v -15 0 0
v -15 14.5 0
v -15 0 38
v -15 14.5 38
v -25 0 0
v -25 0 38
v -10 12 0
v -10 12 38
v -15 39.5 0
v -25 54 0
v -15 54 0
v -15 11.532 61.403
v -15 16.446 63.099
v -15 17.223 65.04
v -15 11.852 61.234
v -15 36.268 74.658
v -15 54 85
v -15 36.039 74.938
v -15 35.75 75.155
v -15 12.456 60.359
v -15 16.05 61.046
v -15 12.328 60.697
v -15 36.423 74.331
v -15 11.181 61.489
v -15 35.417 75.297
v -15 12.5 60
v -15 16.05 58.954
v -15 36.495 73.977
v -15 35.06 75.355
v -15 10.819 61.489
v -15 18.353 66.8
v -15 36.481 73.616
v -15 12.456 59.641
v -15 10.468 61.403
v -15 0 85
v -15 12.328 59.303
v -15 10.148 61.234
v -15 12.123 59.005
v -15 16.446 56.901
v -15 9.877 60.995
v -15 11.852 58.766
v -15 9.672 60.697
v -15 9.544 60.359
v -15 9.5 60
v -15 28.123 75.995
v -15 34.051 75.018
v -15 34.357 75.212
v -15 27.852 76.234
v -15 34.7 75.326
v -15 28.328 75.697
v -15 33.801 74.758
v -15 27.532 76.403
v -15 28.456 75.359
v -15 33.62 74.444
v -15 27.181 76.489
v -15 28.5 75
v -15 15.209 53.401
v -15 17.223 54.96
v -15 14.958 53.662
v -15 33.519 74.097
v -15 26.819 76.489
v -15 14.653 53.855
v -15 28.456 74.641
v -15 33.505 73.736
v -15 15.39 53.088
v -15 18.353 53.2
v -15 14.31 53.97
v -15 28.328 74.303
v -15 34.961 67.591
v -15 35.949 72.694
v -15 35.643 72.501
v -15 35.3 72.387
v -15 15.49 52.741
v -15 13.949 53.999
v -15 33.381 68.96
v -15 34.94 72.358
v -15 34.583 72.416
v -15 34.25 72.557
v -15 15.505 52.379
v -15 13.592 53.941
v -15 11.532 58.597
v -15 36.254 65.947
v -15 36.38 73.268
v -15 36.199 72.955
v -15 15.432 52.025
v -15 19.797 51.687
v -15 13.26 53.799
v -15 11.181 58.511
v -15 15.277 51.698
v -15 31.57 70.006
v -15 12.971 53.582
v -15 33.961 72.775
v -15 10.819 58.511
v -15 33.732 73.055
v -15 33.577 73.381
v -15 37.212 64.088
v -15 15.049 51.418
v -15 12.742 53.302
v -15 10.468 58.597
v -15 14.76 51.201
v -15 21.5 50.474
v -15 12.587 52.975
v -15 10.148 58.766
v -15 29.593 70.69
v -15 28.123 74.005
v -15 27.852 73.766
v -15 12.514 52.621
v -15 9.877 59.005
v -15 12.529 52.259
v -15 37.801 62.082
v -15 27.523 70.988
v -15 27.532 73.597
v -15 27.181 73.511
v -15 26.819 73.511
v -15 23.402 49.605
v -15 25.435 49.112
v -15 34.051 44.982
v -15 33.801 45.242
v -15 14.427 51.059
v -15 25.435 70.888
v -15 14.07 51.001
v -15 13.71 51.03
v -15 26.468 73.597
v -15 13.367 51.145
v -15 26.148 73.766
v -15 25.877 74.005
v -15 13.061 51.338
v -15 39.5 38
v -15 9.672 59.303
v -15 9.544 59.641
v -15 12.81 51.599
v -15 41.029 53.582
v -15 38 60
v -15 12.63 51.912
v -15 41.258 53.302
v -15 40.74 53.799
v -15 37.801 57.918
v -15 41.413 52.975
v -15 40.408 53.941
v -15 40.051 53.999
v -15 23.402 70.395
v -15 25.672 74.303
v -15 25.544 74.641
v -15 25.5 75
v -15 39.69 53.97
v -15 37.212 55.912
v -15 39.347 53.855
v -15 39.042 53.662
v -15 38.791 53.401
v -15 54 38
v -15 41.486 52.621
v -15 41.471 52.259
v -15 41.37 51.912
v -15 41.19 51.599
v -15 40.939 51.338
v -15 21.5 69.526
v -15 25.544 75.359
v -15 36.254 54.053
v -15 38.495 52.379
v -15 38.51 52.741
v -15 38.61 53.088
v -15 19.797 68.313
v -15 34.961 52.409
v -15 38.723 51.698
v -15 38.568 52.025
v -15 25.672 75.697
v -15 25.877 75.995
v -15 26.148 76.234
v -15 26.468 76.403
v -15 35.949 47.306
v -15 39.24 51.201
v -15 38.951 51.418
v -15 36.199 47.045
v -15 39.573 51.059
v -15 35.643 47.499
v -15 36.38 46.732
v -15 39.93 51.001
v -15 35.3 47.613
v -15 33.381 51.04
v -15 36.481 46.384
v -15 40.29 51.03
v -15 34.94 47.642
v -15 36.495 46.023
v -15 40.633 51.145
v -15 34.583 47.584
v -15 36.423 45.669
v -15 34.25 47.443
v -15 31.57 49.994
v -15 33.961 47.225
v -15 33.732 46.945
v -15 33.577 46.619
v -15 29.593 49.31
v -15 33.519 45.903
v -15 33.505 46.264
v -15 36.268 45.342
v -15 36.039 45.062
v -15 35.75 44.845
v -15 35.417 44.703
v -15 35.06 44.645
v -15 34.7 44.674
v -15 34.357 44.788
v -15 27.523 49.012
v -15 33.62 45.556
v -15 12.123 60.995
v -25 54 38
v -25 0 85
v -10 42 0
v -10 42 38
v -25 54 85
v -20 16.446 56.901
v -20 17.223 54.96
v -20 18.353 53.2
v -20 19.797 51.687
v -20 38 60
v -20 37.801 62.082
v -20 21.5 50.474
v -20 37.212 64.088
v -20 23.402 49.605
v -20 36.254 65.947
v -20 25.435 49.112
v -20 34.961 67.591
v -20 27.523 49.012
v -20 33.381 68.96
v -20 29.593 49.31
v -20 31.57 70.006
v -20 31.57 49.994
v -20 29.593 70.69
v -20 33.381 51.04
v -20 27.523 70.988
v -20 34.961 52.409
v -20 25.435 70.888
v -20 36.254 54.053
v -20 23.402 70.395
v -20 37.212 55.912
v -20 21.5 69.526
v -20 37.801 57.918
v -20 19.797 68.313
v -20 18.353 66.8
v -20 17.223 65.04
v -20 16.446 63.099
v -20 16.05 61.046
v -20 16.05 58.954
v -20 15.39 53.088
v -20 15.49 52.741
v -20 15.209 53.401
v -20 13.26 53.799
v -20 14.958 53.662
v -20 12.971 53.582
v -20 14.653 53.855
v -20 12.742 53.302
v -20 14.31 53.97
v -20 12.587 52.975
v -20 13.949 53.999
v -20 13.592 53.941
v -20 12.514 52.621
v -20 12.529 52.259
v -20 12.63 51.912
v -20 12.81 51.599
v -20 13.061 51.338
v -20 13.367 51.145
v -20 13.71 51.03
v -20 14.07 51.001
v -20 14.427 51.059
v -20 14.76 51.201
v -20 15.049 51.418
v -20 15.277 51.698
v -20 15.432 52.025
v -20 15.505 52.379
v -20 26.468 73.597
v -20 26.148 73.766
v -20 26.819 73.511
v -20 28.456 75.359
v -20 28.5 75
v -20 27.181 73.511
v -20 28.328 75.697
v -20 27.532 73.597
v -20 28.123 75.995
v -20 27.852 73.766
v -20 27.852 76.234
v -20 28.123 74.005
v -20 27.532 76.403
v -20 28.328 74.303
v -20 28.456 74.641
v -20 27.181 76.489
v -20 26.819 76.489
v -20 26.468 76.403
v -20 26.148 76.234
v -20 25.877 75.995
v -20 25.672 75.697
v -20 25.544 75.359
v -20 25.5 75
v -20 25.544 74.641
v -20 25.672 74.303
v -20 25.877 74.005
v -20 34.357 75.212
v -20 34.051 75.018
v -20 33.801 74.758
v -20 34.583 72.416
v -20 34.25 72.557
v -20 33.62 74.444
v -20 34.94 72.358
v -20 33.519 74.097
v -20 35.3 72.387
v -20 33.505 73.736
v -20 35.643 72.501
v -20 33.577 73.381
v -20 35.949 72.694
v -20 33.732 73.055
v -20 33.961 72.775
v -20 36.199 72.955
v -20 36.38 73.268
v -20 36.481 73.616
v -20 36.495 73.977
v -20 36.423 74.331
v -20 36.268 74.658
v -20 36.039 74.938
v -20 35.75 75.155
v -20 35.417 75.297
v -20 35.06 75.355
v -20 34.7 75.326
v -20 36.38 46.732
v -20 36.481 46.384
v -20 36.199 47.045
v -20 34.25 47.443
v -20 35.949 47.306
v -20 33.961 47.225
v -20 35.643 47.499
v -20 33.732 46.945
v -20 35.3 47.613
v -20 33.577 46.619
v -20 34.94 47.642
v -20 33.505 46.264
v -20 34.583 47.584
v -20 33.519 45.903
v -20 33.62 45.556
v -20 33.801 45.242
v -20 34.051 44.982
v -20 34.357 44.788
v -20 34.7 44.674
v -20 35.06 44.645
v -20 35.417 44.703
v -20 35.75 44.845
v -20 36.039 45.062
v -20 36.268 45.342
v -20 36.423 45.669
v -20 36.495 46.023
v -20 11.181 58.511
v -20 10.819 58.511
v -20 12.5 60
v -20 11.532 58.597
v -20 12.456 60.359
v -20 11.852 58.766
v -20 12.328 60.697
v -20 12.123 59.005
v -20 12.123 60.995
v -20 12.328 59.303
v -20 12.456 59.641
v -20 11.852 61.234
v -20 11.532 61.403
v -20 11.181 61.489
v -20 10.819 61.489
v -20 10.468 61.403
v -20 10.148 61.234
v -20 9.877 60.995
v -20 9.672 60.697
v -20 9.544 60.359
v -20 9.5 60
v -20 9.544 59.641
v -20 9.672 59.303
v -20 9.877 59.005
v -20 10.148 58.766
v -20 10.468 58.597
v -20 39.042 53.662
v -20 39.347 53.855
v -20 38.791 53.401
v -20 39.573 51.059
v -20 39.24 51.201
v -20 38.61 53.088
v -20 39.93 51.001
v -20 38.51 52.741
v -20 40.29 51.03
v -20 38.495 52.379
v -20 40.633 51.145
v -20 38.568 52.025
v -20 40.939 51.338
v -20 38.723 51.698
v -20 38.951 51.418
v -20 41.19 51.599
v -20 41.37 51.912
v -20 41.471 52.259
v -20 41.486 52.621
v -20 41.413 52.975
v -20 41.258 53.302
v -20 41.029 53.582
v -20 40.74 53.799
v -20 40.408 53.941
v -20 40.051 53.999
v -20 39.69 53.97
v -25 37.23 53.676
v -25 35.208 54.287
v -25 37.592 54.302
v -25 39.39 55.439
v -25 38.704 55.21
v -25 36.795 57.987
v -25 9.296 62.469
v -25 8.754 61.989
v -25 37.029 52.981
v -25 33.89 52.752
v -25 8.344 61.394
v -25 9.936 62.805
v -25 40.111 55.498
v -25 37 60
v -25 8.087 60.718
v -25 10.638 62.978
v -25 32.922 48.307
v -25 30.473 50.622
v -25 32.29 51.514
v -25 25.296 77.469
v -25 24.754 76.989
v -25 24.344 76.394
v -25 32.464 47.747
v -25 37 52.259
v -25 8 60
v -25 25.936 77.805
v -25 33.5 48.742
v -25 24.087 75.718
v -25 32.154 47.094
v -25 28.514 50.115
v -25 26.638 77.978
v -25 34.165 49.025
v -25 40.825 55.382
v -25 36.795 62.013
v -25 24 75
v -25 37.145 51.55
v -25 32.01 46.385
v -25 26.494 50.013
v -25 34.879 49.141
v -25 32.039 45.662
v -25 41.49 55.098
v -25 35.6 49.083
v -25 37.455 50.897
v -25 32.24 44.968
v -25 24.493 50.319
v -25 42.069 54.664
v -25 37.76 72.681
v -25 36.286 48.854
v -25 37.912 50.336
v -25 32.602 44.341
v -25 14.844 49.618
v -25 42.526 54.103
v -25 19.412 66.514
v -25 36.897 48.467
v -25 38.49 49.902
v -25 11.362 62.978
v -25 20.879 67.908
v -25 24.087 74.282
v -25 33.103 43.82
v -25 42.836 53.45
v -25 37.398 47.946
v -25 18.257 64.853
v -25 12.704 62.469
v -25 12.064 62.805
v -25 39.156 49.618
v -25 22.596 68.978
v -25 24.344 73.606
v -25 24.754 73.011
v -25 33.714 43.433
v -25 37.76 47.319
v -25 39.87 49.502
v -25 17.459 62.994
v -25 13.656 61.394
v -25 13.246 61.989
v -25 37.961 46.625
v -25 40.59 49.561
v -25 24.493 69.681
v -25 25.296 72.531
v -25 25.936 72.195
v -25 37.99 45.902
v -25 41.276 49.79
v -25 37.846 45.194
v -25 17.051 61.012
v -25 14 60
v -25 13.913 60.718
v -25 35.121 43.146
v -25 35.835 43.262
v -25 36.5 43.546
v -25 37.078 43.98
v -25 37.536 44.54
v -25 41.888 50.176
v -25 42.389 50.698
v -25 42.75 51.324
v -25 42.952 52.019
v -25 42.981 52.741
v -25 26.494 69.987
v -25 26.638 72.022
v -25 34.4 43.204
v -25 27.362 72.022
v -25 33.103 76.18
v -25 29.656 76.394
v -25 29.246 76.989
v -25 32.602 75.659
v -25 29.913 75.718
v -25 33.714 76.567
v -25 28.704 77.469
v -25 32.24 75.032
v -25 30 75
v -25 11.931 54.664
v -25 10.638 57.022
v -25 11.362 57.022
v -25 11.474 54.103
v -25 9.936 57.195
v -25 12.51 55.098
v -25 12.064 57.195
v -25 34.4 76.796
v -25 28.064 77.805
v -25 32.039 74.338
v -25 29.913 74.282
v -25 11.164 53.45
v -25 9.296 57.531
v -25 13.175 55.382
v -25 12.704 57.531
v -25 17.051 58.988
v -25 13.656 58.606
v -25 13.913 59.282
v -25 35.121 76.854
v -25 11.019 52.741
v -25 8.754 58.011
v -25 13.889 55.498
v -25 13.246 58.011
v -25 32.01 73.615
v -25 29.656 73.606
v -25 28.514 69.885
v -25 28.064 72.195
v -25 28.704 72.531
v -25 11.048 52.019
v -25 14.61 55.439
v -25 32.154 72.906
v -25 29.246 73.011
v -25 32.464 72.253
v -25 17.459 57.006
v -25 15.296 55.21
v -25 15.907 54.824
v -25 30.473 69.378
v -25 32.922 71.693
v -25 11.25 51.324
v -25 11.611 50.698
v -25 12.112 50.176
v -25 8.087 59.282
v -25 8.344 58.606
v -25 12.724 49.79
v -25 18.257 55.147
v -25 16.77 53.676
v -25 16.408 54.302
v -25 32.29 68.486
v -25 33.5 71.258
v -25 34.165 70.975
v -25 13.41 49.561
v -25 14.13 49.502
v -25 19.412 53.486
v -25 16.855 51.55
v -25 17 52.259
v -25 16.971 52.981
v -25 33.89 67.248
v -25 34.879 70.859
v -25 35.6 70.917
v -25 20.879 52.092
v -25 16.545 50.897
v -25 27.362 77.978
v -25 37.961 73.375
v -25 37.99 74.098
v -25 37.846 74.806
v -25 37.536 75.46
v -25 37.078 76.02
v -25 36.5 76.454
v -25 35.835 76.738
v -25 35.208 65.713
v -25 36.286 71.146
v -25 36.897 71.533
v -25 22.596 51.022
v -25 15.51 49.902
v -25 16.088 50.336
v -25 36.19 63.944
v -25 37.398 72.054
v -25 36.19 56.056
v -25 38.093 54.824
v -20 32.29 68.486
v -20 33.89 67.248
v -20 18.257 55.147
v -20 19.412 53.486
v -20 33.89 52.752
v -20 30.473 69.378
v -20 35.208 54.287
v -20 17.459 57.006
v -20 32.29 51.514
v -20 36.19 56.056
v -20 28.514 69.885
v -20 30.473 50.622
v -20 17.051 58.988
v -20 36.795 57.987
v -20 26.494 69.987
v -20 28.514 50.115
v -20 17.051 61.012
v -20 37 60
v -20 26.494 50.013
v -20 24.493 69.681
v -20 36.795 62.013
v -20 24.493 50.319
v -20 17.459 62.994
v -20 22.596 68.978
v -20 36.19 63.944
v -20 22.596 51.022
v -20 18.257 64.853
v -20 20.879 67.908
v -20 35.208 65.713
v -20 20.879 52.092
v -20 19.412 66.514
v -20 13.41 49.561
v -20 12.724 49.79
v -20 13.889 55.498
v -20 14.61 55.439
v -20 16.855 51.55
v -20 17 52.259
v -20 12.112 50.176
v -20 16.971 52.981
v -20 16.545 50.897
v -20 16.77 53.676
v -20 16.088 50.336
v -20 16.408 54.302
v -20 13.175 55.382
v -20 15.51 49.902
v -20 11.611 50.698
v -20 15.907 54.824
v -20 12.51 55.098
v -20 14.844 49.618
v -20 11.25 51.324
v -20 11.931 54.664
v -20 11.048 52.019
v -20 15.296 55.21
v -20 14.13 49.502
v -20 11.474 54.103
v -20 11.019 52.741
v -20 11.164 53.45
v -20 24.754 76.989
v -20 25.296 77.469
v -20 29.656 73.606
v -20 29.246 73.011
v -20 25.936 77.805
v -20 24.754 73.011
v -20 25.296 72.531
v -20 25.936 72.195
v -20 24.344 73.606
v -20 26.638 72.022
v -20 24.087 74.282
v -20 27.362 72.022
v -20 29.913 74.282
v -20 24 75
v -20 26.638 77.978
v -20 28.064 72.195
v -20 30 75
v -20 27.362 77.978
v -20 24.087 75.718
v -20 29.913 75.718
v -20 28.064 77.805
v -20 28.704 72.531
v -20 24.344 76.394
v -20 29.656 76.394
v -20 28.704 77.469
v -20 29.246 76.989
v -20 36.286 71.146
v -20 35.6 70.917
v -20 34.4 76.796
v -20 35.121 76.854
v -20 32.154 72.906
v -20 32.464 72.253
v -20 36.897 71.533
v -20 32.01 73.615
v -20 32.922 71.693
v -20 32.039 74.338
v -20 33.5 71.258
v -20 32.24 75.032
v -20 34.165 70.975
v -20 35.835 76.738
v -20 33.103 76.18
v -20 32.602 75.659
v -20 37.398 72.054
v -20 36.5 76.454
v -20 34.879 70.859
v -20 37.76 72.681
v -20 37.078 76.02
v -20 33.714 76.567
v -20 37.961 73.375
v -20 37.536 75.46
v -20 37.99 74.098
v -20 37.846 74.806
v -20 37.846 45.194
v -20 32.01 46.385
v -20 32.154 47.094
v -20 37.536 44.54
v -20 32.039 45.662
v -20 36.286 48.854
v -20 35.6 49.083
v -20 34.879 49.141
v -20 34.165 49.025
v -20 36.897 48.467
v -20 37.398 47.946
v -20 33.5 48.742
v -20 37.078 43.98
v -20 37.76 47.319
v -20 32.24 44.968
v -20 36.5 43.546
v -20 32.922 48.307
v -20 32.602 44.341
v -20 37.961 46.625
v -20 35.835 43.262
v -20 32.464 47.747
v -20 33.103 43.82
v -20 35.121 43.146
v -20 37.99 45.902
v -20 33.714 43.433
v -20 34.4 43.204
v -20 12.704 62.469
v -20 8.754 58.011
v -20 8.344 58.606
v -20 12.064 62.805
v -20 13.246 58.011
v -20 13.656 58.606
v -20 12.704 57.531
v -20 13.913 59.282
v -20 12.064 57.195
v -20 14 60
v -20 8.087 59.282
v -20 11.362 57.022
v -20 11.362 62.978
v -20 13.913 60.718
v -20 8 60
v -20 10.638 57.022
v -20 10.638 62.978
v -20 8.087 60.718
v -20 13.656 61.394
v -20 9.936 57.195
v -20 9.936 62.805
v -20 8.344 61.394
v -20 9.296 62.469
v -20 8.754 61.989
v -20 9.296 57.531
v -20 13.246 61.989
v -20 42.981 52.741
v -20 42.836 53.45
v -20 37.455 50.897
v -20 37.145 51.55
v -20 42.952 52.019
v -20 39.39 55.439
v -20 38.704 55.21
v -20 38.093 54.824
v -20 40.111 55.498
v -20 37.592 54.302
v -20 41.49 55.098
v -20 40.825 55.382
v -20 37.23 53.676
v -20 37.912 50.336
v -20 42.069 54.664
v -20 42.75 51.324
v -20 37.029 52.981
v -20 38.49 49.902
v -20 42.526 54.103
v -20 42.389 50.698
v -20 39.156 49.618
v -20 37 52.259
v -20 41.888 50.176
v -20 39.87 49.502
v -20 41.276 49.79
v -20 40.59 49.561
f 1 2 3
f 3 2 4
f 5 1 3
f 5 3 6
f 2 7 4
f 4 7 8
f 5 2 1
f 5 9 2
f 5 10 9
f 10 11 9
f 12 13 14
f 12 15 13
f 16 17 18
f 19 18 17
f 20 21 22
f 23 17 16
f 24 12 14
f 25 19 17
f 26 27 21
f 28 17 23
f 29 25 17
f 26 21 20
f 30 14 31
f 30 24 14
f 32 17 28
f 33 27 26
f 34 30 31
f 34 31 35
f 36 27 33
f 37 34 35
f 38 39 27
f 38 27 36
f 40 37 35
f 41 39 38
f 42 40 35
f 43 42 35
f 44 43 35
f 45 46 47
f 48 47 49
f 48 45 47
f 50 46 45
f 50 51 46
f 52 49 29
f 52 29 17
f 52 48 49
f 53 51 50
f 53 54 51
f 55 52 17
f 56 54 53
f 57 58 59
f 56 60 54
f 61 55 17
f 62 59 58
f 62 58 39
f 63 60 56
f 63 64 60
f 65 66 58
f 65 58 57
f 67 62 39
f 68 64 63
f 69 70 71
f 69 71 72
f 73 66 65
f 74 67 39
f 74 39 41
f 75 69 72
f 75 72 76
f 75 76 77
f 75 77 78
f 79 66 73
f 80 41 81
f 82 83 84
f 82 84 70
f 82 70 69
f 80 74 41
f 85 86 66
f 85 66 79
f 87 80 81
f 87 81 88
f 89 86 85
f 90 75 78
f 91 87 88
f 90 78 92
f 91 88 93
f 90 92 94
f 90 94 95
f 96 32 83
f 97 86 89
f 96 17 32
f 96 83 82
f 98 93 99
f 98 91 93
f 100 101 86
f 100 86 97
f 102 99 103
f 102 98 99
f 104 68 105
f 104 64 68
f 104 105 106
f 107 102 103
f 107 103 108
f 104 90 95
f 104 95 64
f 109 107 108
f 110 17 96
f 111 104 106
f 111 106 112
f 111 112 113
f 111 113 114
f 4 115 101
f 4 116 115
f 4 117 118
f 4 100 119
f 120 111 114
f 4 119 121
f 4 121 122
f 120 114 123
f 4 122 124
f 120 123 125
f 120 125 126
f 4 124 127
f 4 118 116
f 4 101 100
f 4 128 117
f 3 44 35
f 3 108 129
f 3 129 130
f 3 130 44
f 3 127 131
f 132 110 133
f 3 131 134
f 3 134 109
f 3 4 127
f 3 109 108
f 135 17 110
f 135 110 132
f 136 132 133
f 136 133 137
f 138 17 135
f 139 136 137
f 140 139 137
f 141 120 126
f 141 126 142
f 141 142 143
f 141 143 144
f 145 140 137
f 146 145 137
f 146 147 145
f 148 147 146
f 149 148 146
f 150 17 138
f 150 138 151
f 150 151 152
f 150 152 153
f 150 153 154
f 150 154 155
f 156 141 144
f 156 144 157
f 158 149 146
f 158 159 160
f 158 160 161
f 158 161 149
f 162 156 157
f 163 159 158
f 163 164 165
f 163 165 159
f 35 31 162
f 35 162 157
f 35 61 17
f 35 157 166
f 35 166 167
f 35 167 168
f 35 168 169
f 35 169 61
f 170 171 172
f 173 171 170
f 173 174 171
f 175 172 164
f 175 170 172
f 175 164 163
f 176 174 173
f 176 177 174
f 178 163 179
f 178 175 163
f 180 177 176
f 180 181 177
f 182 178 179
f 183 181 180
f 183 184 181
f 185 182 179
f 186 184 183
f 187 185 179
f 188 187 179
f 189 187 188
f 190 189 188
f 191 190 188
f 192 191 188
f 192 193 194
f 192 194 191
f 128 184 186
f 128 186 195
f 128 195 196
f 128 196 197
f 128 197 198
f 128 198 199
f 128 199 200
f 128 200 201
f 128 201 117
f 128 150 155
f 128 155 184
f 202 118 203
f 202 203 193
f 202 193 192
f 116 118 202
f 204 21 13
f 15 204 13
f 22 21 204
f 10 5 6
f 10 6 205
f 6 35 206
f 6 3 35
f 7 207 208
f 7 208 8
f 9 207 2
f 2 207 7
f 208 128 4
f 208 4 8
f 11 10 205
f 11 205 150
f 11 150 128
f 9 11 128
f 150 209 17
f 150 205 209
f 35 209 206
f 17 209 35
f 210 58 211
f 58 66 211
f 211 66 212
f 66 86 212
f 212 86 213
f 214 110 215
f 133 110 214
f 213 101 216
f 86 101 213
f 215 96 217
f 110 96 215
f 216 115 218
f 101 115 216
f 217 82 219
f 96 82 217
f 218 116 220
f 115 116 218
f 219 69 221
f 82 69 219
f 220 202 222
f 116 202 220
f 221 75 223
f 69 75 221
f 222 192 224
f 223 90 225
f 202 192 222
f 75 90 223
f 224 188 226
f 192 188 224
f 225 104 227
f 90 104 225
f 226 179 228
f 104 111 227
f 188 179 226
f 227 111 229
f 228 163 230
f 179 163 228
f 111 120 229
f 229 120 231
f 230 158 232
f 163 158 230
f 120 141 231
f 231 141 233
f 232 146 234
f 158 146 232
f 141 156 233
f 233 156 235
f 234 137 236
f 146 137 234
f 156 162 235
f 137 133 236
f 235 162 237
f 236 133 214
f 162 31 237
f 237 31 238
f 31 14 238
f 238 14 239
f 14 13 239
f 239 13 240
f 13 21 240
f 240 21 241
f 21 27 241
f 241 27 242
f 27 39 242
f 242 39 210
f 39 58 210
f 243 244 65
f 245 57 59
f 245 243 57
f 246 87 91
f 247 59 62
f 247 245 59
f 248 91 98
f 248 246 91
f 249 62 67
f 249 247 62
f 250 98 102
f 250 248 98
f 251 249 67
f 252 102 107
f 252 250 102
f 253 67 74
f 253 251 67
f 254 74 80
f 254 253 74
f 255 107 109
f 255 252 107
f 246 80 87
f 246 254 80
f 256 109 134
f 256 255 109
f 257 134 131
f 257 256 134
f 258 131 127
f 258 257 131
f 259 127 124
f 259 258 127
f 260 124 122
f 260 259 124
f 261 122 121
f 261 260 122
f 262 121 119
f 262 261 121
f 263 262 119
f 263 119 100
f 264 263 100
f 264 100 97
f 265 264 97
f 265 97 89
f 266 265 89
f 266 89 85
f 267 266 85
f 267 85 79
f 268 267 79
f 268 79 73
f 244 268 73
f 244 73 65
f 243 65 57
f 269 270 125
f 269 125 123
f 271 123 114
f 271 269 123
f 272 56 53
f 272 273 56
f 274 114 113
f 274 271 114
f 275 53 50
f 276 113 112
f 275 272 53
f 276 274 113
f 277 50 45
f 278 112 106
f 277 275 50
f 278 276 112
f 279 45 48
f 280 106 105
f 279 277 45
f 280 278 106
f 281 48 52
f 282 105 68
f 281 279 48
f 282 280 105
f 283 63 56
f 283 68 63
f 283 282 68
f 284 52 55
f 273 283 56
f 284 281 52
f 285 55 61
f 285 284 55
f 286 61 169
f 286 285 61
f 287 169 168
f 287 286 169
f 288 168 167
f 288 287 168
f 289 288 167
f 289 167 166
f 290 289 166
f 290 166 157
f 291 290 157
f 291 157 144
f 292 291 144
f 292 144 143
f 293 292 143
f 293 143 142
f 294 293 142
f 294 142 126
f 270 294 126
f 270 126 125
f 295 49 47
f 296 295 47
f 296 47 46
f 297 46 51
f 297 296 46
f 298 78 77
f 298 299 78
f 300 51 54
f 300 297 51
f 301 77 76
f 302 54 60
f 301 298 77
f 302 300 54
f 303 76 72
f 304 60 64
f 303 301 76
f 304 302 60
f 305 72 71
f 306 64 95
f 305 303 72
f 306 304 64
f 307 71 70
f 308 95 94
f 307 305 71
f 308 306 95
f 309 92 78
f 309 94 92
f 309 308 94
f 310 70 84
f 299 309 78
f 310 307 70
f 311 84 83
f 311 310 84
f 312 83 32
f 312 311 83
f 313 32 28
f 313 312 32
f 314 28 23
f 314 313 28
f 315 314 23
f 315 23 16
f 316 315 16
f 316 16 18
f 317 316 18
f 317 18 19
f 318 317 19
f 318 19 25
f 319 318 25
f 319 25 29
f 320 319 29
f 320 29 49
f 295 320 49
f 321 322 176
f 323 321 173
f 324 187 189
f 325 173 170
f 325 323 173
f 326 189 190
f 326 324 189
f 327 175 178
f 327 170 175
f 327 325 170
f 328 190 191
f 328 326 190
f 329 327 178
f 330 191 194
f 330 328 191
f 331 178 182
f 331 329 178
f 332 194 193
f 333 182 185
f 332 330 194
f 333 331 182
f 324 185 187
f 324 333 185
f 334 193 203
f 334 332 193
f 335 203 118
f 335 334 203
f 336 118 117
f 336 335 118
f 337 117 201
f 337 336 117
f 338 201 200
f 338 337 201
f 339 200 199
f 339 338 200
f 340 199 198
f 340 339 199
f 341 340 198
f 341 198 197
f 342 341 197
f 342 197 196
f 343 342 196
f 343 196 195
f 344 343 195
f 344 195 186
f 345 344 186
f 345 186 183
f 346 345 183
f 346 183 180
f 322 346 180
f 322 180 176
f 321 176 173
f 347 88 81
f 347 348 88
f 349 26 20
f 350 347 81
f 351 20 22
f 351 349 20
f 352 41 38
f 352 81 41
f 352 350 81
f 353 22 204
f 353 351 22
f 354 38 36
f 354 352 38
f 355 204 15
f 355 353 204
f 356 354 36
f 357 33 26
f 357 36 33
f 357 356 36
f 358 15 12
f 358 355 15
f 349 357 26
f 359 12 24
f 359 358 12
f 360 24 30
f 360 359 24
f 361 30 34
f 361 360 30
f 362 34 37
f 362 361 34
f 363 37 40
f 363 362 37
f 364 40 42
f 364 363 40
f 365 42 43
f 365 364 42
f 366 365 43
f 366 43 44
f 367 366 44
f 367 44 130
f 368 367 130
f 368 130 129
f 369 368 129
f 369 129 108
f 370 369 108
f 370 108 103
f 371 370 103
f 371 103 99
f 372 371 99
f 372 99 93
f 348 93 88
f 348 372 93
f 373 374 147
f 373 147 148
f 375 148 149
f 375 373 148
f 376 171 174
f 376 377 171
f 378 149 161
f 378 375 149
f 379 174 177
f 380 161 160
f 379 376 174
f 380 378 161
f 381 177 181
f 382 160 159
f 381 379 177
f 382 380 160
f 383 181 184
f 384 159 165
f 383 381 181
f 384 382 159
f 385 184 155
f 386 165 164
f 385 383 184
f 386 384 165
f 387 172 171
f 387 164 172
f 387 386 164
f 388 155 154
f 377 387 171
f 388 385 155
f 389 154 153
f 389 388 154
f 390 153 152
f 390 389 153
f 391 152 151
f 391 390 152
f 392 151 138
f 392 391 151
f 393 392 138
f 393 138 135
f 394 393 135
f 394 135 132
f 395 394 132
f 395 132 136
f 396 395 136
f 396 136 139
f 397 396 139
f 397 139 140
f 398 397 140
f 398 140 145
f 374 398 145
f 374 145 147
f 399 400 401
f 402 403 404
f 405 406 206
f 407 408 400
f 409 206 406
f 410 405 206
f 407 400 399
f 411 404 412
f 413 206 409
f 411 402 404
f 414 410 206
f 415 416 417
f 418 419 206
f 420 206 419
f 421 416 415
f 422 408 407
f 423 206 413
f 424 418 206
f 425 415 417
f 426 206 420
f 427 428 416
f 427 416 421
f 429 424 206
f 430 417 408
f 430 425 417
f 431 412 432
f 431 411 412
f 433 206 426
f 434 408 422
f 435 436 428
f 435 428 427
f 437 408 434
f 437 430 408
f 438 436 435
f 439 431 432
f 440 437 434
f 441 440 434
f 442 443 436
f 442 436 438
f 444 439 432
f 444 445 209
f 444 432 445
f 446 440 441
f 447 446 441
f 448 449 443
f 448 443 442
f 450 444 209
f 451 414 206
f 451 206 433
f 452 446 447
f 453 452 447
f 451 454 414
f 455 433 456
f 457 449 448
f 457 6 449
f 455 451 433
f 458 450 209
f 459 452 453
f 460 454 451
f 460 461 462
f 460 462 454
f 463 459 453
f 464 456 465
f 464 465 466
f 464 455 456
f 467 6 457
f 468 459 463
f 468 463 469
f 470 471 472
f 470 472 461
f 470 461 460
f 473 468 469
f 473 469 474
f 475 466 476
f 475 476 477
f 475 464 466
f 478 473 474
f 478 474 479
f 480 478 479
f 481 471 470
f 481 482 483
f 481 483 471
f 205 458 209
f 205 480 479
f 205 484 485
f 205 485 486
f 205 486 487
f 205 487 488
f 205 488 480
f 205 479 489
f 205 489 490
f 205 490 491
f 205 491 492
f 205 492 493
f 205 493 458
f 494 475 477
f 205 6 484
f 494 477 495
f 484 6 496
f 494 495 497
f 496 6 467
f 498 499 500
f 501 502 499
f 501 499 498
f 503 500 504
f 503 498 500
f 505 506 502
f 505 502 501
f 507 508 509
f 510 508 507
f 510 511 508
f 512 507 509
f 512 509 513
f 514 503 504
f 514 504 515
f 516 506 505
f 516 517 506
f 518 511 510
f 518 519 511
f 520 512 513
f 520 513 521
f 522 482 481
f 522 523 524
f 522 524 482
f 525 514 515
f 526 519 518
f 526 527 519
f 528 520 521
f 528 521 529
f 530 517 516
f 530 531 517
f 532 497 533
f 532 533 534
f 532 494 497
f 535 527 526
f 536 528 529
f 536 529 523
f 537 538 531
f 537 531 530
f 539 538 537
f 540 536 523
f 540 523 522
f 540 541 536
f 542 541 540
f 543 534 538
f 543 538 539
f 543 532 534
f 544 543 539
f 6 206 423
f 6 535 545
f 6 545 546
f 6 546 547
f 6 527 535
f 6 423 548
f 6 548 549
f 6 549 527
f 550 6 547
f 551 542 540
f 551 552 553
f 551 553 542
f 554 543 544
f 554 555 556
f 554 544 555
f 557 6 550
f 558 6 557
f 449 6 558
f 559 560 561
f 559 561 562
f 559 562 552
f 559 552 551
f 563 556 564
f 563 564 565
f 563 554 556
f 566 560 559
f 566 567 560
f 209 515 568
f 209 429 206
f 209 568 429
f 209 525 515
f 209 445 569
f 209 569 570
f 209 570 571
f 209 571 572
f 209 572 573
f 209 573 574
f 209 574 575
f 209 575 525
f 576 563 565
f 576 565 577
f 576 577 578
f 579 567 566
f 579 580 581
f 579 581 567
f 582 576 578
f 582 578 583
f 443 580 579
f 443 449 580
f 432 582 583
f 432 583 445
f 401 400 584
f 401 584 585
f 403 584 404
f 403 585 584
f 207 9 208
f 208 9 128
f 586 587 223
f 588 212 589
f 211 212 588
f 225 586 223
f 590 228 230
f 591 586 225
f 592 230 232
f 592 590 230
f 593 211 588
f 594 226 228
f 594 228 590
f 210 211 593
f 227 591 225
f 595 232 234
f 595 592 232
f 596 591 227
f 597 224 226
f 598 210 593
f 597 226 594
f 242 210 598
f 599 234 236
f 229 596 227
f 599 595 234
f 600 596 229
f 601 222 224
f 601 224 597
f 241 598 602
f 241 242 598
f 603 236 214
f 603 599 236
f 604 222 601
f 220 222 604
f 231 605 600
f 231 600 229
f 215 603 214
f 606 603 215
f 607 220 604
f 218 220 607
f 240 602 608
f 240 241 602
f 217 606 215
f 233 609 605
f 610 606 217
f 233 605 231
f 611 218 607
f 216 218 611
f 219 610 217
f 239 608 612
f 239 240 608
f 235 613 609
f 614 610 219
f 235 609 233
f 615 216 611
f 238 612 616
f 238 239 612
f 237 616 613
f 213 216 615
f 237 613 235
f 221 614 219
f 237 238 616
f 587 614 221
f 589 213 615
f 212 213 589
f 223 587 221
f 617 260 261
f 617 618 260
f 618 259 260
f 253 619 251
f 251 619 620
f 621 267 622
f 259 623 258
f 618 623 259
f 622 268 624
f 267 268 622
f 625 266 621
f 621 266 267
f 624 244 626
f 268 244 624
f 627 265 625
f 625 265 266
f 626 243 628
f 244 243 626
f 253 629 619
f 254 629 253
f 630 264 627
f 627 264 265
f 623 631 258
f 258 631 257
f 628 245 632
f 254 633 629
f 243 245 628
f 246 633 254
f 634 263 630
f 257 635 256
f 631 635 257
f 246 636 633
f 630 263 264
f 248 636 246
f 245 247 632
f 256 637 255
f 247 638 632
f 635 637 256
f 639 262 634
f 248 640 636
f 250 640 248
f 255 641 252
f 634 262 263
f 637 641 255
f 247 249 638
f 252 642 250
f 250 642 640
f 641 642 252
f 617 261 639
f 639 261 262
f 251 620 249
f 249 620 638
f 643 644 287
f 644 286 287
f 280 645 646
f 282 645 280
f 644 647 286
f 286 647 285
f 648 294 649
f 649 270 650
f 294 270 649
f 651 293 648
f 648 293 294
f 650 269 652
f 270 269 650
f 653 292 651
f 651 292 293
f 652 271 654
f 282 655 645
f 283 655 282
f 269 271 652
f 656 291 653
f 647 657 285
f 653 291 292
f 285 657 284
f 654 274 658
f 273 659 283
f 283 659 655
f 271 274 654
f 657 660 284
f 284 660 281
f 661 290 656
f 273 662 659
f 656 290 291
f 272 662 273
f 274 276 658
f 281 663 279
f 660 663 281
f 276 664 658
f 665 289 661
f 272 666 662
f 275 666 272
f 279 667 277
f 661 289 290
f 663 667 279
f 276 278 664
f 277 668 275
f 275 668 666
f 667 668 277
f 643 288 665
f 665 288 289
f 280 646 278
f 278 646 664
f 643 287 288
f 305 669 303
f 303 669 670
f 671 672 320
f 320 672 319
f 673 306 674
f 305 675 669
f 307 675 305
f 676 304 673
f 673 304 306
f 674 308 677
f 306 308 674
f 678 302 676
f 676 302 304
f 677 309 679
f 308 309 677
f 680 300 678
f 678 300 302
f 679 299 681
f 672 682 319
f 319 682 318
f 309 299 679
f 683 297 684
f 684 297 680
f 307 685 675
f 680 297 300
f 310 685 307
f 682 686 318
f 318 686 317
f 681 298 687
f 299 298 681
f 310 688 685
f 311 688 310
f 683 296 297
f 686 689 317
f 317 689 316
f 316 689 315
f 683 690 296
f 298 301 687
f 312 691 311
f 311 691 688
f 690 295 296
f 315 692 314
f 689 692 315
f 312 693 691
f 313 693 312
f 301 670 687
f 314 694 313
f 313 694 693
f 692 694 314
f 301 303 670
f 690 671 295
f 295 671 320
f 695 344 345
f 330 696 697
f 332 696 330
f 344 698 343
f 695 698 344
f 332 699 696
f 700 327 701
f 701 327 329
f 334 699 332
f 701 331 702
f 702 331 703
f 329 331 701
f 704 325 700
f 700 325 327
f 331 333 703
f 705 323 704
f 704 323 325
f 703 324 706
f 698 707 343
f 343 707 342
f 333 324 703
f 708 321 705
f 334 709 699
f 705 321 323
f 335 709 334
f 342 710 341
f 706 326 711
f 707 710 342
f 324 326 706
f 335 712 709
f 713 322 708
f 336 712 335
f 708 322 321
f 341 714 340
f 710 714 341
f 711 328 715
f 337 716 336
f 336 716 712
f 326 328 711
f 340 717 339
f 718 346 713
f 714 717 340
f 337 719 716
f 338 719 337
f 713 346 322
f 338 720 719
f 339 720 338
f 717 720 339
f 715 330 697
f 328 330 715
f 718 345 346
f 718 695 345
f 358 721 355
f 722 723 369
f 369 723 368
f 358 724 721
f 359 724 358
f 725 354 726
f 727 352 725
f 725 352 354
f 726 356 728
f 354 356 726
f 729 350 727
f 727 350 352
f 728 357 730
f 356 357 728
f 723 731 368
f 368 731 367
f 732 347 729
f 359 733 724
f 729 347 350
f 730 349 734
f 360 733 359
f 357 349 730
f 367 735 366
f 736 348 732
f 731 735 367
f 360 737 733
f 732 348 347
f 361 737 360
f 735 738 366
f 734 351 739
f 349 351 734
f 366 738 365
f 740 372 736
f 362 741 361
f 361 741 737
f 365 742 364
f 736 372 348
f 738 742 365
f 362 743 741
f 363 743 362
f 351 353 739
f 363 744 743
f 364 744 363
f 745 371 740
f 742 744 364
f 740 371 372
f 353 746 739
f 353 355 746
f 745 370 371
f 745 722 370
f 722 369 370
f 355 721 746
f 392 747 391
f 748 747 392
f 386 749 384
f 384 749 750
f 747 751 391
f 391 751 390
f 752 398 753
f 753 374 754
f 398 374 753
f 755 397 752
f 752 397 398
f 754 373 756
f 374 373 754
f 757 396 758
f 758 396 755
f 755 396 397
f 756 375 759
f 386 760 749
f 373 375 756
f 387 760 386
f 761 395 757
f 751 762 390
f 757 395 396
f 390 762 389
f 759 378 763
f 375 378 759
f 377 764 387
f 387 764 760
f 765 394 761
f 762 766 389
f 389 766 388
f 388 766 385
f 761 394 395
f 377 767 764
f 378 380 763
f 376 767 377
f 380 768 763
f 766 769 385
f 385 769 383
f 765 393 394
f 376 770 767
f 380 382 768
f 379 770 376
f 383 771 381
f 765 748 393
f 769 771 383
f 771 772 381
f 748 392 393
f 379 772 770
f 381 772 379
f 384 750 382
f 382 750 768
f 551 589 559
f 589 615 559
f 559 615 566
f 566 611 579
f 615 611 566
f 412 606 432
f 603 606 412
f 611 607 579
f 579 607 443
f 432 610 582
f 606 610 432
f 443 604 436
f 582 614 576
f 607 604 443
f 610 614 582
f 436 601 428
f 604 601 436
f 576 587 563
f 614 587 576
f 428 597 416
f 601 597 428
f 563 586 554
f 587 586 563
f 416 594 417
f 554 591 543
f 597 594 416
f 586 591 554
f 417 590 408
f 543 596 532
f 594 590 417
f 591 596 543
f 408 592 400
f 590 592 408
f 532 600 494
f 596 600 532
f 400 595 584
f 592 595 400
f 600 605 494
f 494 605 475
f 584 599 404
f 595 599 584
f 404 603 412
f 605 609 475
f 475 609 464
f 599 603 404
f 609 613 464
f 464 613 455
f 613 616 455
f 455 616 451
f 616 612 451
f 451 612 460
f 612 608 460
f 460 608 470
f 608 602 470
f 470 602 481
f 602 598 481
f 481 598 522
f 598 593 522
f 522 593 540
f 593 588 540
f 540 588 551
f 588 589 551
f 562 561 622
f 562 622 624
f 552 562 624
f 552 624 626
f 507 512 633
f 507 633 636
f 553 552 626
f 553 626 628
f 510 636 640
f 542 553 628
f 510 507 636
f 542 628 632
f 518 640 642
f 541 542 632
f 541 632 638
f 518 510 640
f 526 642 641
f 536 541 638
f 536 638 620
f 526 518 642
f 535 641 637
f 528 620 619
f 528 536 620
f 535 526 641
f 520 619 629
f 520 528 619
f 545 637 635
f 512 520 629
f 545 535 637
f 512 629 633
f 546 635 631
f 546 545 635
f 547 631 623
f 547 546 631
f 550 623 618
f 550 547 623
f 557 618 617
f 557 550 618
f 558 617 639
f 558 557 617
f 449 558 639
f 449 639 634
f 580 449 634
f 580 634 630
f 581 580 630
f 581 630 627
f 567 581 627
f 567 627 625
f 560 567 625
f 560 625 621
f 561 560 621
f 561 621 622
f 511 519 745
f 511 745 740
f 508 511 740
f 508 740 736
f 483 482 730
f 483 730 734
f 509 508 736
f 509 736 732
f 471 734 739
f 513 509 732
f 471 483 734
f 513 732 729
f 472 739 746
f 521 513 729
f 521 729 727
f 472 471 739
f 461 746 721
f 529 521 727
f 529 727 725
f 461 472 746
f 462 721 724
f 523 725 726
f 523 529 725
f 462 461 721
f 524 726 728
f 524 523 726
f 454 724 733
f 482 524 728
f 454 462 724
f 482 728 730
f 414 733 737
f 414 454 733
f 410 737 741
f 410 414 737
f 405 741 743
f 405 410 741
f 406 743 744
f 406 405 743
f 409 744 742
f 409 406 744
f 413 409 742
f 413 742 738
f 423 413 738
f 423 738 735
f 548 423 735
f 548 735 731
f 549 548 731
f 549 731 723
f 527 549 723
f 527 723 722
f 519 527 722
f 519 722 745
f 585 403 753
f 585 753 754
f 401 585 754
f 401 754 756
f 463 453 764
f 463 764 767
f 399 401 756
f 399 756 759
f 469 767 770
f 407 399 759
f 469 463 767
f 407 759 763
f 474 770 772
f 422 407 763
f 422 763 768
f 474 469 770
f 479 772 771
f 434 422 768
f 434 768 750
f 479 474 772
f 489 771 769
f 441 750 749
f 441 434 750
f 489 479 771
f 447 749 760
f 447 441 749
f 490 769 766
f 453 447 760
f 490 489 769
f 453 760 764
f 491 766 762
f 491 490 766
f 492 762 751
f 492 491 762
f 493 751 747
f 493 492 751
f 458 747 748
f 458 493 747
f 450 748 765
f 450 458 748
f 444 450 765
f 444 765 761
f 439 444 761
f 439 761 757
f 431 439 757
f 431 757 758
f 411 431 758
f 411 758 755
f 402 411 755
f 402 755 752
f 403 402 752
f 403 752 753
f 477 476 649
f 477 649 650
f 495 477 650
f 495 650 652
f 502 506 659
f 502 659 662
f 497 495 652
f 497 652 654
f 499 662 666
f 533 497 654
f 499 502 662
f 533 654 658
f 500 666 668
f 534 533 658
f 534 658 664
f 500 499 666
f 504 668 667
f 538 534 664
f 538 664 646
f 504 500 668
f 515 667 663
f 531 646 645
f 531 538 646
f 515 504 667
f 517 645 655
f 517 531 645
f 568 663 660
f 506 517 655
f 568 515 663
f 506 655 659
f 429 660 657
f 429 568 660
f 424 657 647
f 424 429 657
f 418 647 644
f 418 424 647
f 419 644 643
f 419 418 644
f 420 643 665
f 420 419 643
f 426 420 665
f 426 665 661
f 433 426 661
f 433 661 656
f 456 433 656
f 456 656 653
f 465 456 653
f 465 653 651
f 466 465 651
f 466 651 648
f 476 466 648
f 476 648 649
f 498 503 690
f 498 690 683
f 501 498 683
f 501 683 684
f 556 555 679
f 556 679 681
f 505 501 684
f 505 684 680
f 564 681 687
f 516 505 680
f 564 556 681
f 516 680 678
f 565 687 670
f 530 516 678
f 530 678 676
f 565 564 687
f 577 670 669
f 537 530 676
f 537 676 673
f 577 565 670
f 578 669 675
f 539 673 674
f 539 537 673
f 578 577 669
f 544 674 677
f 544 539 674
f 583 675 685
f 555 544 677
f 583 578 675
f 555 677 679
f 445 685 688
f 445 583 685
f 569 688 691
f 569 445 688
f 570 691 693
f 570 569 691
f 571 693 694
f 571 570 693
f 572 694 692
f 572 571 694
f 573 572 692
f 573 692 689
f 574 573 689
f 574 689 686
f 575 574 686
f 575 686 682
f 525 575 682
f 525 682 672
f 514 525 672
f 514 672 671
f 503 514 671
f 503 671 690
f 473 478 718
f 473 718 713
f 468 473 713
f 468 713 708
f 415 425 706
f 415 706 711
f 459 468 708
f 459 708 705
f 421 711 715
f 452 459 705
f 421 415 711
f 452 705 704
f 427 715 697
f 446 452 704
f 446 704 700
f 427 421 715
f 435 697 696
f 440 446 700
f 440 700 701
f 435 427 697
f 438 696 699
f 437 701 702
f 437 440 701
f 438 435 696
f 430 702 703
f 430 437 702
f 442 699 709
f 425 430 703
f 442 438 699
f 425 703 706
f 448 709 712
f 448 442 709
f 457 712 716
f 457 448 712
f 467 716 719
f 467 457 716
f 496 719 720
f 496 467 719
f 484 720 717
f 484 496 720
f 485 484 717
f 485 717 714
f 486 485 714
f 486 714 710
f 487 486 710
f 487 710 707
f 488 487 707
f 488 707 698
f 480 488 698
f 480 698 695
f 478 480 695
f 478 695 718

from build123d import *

# Parameters (mm, degrees)
PAD_DEPTH             = 38
SKETCH_W              = 10
SKETCH_H              = 54
PAD001_DEPTH          = 85
SKETCH002_R           = 10
POCKET_DEPTH          = 25.001
SKETCH003_R           = 1.5
POCKET001_DEPTH       = 218.62811
POLARPATTERN_COUNT    = 3
SKETCH004_R           = 3
POCKET002_DEPTH       = 5
POLARPATTERN001_COUNT = 3
SKETCH005_R           = 11
POCKET003_DEPTH       = 20


with BuildPart() as part:
    # Sketch001 → Pad (new body)
    with BuildSketch(Plane.XY):
        Polygon((-15, 0), (-15, 14.5), (-10, 12), (-10, 42), (-15, 39.5), (-15, 54), (-25, 54), (-25, 0), align=None)
    extrude(amount=PAD_DEPTH)

    # Sketch → Pad001 (join)
    with BuildSketch(Plane.XY):
        with Locations((-20, 27)):
            Rectangle(SKETCH_W, SKETCH_H)
    extrude(amount=PAD001_DEPTH)

    # Sketch002 → Pocket (cut, through all)
    with BuildSketch(Plane.YZ):
        with Locations((27, 60)):
            Circle(SKETCH002_R)
    extrude(amount=-POCKET_DEPTH, mode=Mode.SUBTRACT)

    # Sketch003 → Pocket001 (cut, through all)
    with BuildSketch(Plane(origin=(-25, 27, 60), x_dir=(0, 1, 0), z_dir=(1, 0, 0))):
        with Locations((0, 15)):
            Circle(SKETCH003_R)
        with Locations((-16, 0)):
            Circle(SKETCH003_R)
    pocket001 = extrude(amount=POCKET001_DEPTH, mode=Mode.SUBTRACT)

    # PolarPattern: Pocket001 ×3 about axis
    polarpattern_axis = Axis((-25, 27, 60), (1, 0, 0))
    for i in range(1, POLARPATTERN_COUNT):
        add(pocket001.rotate(polarpattern_axis, i * 360 / POLARPATTERN_COUNT), mode=Mode.SUBTRACT)

    # Sketch004 → Pocket002 (cut)
    with BuildSketch(Plane(origin=(-25, 27, 60), x_dir=(0, 1, 0), z_dir=(1, 0, 0))):
        with Locations((0, 15)):
            Circle(SKETCH004_R)
        with Locations((-16, 0)):
            Circle(SKETCH004_R)
    pocket002 = extrude(amount=POCKET002_DEPTH, mode=Mode.SUBTRACT)

    # PolarPattern001: Pocket002 ×3 about axis
    polarpattern001_axis = Axis((-25, 27, 60), (1, 0, 0))
    for i in range(1, POLARPATTERN001_COUNT):
        add(pocket002.rotate(polarpattern001_axis, i * 360 / POLARPATTERN001_COUNT), mode=Mode.SUBTRACT)

    # Sketch005 → Pocket003 (cut)
    with BuildSketch(Plane.YZ):
        with Locations((27, 60)):
            Circle(SKETCH005_R)
    extrude(amount=-POCKET003_DEPTH, mode=Mode.SUBTRACT)


solid = part.part
